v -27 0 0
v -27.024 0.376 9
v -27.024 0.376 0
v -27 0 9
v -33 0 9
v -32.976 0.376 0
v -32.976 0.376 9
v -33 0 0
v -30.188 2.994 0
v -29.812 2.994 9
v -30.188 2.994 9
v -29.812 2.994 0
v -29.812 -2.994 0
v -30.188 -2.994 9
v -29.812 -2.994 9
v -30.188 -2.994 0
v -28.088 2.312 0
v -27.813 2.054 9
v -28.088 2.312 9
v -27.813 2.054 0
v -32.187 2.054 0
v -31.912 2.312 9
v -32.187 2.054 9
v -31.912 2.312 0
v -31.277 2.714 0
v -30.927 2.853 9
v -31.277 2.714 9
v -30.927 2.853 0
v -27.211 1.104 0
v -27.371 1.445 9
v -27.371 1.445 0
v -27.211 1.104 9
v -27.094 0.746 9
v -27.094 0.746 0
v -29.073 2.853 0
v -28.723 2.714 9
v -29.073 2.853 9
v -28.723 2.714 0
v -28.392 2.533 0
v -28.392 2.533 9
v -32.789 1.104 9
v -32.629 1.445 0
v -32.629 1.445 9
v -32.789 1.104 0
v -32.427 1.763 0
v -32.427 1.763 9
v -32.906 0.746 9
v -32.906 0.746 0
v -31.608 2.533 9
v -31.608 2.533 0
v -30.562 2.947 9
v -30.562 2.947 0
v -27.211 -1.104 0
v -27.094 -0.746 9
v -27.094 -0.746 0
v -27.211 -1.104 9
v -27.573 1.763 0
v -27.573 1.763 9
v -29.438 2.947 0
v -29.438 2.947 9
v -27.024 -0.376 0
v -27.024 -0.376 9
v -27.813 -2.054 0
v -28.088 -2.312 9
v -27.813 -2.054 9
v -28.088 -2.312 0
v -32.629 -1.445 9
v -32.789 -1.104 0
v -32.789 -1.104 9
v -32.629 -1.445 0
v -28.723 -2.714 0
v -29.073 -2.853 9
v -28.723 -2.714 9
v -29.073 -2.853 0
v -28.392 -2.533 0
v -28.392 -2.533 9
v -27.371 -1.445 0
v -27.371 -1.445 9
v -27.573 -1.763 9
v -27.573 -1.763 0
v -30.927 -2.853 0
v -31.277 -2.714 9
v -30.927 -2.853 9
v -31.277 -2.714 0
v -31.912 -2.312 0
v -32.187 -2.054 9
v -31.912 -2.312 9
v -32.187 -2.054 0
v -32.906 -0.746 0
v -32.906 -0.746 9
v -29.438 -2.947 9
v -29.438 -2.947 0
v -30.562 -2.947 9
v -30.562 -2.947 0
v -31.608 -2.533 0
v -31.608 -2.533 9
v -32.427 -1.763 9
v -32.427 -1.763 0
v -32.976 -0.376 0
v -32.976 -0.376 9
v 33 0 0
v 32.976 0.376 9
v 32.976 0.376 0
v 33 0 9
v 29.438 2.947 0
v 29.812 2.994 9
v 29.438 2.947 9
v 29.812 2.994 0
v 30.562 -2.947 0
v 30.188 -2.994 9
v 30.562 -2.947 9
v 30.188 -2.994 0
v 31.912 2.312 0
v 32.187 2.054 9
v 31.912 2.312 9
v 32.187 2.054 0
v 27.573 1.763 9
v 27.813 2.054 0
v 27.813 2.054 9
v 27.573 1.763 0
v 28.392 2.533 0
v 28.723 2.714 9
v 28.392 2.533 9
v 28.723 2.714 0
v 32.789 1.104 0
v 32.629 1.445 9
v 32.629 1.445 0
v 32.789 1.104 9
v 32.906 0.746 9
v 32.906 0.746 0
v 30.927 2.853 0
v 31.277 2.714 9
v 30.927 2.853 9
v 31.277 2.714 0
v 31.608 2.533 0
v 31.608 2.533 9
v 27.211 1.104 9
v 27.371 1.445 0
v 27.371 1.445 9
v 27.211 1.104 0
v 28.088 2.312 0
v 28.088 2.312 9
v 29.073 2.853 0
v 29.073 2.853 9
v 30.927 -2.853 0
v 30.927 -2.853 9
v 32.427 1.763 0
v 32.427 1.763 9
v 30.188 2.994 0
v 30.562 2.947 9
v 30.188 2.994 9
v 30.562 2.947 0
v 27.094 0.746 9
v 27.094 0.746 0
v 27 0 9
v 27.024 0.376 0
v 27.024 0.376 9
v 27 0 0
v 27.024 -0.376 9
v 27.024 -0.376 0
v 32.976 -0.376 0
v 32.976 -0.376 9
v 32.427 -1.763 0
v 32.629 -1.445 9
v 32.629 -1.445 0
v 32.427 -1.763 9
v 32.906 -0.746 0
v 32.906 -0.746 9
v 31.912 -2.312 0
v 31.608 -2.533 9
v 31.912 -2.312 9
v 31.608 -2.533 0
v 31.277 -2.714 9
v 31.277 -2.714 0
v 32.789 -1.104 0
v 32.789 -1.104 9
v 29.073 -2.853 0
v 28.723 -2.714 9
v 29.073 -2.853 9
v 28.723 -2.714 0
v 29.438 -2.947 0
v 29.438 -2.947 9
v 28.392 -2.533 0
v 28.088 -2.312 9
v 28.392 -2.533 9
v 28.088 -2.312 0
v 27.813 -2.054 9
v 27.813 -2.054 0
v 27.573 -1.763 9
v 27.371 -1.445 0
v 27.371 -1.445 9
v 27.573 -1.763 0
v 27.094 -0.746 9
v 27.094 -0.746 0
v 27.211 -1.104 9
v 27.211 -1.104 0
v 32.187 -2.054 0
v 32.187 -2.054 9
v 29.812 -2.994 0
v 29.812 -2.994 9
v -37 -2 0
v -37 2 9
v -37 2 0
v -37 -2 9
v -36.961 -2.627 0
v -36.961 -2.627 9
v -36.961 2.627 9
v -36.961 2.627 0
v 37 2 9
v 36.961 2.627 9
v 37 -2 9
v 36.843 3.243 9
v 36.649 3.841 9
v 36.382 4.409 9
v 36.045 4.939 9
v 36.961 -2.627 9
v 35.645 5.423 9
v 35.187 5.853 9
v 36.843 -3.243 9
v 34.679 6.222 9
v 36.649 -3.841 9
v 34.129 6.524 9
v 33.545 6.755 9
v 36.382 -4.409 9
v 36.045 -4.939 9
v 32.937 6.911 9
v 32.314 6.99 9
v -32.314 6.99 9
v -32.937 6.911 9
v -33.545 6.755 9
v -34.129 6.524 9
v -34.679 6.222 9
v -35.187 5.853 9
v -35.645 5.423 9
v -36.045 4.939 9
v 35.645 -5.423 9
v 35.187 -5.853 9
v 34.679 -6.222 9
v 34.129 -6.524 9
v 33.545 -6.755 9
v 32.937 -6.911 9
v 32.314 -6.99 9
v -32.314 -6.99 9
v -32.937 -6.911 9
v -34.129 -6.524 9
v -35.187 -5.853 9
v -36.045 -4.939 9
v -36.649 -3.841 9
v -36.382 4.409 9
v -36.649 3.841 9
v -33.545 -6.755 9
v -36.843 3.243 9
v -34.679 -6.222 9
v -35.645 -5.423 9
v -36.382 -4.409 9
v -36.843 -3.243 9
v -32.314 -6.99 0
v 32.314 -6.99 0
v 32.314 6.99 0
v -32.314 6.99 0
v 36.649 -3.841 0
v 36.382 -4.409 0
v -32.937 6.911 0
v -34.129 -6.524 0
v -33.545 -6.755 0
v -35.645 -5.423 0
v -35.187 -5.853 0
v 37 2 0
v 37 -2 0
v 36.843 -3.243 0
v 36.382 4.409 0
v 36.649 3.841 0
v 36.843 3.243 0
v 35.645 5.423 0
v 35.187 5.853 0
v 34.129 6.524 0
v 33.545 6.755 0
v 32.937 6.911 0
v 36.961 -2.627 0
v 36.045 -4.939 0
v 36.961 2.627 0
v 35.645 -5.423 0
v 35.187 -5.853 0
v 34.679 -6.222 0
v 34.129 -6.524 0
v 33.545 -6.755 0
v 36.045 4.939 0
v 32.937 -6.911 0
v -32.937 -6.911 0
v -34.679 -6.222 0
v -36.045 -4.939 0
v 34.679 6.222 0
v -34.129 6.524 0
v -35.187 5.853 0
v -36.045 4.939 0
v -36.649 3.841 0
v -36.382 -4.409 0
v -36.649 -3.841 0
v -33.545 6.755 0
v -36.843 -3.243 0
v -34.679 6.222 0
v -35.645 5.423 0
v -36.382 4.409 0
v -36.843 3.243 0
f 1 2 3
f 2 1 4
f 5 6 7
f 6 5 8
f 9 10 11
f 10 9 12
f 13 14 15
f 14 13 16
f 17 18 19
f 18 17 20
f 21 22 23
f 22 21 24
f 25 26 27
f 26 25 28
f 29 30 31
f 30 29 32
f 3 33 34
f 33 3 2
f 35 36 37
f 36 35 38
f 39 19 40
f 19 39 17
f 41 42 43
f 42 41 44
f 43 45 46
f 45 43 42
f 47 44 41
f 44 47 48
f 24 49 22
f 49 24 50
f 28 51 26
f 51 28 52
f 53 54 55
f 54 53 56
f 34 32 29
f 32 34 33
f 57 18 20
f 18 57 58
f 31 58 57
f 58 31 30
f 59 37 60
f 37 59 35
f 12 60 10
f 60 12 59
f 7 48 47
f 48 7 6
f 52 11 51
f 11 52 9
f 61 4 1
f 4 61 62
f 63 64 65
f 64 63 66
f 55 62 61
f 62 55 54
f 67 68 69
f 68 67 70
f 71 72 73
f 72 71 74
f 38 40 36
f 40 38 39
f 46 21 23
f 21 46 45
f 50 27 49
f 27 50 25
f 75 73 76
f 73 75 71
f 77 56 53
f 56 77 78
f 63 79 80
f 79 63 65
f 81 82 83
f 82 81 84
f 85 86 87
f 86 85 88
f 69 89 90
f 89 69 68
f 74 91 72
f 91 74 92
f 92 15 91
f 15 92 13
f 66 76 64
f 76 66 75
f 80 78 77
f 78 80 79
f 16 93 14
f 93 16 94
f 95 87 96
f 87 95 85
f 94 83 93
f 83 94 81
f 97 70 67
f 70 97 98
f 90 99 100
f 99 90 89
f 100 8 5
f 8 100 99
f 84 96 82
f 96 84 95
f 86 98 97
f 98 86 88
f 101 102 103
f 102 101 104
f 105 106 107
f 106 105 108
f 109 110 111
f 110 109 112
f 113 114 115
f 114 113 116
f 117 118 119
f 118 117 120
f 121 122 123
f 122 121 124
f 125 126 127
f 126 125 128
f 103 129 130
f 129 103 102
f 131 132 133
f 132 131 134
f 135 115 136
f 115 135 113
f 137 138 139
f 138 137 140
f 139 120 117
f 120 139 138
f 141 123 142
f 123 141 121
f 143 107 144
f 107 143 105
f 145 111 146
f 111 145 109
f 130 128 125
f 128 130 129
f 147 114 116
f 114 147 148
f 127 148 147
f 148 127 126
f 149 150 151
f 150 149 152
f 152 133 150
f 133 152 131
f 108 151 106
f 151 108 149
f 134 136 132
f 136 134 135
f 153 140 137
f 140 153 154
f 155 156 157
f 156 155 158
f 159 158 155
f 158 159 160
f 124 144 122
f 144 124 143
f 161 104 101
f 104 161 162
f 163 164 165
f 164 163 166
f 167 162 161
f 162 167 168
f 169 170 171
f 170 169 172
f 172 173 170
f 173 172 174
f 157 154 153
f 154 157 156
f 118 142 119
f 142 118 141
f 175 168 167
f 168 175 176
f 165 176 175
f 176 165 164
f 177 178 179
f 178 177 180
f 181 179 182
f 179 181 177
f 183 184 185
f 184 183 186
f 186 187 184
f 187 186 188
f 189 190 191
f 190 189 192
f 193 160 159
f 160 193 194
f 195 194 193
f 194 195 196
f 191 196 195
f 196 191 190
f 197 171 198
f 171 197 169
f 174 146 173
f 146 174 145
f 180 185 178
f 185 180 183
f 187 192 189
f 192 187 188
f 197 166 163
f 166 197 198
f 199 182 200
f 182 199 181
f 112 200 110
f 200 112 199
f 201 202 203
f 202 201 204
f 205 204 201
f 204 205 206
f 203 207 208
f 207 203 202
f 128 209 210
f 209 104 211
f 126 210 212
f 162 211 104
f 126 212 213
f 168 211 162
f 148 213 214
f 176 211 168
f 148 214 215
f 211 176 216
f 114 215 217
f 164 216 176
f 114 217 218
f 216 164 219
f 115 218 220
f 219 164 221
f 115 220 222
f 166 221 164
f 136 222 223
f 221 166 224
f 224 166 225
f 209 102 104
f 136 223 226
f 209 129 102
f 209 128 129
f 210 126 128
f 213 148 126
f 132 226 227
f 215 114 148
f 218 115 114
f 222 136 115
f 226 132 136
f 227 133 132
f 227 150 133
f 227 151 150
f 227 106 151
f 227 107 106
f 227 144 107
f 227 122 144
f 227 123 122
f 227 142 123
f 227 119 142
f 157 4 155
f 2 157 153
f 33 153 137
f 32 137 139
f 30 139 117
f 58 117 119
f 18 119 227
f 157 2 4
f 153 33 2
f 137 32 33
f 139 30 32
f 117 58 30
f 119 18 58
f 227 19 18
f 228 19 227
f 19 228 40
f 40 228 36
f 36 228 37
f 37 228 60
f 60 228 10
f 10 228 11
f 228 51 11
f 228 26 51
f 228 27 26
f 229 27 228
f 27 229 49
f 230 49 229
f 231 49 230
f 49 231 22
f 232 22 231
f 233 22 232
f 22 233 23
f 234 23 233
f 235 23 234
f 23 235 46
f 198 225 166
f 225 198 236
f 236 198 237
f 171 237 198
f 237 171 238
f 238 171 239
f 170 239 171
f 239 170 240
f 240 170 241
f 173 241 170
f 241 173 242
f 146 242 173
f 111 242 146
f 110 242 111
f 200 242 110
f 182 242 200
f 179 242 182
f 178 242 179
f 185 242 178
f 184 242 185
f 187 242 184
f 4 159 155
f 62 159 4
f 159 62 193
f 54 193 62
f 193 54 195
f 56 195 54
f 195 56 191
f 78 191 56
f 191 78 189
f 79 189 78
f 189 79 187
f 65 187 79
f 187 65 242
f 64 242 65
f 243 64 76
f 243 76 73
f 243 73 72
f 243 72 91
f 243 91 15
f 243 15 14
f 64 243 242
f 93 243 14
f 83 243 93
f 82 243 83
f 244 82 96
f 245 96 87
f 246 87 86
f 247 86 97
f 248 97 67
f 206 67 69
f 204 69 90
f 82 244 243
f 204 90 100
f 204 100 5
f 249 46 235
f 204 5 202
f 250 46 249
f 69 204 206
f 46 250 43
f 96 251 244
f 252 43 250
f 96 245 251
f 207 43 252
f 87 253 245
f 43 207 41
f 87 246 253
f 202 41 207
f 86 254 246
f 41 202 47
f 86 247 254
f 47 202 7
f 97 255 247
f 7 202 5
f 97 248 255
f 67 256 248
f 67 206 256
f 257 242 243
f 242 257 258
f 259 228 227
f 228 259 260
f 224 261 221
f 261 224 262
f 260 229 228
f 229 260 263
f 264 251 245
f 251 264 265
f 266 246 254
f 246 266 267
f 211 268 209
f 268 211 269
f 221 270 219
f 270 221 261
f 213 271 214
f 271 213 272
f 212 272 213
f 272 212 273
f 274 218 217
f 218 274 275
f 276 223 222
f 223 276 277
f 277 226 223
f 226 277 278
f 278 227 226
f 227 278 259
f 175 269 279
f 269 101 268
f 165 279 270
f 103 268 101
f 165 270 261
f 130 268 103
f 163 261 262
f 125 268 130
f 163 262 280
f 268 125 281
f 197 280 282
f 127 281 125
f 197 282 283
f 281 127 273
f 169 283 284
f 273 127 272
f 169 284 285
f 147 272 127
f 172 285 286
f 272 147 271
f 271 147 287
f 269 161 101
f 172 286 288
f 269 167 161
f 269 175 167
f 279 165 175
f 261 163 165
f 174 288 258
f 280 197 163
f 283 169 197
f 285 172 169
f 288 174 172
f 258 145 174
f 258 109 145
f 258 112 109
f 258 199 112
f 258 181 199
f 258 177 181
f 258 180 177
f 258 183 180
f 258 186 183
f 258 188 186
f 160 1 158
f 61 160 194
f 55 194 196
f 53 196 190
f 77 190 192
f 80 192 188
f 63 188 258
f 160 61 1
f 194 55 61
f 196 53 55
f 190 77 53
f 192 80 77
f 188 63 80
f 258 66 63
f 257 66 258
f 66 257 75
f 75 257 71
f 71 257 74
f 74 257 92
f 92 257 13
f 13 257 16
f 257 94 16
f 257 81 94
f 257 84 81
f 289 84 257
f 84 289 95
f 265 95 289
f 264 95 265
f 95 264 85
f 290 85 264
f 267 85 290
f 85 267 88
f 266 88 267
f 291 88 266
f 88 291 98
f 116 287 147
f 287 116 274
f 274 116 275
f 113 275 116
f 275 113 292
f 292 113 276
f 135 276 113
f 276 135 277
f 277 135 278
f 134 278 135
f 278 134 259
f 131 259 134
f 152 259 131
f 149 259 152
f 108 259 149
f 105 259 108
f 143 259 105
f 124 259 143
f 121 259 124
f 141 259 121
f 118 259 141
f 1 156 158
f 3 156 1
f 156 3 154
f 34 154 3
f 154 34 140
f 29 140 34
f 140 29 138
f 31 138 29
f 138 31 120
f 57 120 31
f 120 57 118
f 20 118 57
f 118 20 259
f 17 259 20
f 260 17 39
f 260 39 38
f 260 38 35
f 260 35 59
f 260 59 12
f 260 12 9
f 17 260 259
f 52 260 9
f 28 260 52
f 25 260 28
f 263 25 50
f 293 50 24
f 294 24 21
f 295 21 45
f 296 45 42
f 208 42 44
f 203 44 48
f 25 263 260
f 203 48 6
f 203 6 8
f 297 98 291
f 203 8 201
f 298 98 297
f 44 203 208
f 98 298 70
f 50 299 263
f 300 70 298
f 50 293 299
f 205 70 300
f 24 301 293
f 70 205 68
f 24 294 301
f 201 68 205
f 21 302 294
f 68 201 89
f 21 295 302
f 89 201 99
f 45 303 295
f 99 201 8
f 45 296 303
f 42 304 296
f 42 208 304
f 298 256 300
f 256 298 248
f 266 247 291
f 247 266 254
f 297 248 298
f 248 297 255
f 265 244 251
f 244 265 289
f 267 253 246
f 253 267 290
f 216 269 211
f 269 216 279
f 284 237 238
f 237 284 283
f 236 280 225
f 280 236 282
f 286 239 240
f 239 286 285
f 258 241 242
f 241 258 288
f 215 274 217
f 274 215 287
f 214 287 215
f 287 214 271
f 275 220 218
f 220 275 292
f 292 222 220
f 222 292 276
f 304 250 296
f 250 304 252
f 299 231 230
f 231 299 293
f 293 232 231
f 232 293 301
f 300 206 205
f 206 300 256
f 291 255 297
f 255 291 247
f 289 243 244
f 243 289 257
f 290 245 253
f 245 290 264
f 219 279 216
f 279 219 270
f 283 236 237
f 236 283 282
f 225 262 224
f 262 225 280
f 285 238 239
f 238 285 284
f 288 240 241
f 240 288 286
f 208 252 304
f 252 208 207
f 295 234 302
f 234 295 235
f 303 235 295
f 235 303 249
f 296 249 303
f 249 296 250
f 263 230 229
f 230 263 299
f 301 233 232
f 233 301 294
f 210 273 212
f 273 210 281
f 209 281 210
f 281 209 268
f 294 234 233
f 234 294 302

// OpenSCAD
$fn = 50;


difference() {
	union() {
		hull() {
			translate(v = [-32.0000000000, 2.0000000000, 0]) {
				cylinder(h = 9, r = 5);
			}
			translate(v = [32.0000000000, 2.0000000000, 0]) {
				cylinder(h = 9, r = 5);
			}
			translate(v = [-32.0000000000, -2.0000000000, 0]) {
				cylinder(h = 9, r = 5);
			}
			translate(v = [32.0000000000, -2.0000000000, 0]) {
				cylinder(h = 9, r = 5);
			}
		}
	}
	union() {
		translate(v = [-30.0000000000, 0.0000000000, -100.0000000000]) {
			cylinder(h = 200, r = 3.0000000000);
		}
		translate(v = [-30.0000000000, 0.0000000000, -100.0000000000]) {
			cylinder(h = 200, r = 3.0000000000);
		}
		translate(v = [30.0000000000, 0.0000000000, -100.0000000000]) {
			cylinder(h = 200, r = 3.0000000000);
		}
		translate(v = [30.0000000000, 0.0000000000, -100.0000000000]) {
			cylinder(h = 200, r = 3.0000000000);
		}
	}
}
